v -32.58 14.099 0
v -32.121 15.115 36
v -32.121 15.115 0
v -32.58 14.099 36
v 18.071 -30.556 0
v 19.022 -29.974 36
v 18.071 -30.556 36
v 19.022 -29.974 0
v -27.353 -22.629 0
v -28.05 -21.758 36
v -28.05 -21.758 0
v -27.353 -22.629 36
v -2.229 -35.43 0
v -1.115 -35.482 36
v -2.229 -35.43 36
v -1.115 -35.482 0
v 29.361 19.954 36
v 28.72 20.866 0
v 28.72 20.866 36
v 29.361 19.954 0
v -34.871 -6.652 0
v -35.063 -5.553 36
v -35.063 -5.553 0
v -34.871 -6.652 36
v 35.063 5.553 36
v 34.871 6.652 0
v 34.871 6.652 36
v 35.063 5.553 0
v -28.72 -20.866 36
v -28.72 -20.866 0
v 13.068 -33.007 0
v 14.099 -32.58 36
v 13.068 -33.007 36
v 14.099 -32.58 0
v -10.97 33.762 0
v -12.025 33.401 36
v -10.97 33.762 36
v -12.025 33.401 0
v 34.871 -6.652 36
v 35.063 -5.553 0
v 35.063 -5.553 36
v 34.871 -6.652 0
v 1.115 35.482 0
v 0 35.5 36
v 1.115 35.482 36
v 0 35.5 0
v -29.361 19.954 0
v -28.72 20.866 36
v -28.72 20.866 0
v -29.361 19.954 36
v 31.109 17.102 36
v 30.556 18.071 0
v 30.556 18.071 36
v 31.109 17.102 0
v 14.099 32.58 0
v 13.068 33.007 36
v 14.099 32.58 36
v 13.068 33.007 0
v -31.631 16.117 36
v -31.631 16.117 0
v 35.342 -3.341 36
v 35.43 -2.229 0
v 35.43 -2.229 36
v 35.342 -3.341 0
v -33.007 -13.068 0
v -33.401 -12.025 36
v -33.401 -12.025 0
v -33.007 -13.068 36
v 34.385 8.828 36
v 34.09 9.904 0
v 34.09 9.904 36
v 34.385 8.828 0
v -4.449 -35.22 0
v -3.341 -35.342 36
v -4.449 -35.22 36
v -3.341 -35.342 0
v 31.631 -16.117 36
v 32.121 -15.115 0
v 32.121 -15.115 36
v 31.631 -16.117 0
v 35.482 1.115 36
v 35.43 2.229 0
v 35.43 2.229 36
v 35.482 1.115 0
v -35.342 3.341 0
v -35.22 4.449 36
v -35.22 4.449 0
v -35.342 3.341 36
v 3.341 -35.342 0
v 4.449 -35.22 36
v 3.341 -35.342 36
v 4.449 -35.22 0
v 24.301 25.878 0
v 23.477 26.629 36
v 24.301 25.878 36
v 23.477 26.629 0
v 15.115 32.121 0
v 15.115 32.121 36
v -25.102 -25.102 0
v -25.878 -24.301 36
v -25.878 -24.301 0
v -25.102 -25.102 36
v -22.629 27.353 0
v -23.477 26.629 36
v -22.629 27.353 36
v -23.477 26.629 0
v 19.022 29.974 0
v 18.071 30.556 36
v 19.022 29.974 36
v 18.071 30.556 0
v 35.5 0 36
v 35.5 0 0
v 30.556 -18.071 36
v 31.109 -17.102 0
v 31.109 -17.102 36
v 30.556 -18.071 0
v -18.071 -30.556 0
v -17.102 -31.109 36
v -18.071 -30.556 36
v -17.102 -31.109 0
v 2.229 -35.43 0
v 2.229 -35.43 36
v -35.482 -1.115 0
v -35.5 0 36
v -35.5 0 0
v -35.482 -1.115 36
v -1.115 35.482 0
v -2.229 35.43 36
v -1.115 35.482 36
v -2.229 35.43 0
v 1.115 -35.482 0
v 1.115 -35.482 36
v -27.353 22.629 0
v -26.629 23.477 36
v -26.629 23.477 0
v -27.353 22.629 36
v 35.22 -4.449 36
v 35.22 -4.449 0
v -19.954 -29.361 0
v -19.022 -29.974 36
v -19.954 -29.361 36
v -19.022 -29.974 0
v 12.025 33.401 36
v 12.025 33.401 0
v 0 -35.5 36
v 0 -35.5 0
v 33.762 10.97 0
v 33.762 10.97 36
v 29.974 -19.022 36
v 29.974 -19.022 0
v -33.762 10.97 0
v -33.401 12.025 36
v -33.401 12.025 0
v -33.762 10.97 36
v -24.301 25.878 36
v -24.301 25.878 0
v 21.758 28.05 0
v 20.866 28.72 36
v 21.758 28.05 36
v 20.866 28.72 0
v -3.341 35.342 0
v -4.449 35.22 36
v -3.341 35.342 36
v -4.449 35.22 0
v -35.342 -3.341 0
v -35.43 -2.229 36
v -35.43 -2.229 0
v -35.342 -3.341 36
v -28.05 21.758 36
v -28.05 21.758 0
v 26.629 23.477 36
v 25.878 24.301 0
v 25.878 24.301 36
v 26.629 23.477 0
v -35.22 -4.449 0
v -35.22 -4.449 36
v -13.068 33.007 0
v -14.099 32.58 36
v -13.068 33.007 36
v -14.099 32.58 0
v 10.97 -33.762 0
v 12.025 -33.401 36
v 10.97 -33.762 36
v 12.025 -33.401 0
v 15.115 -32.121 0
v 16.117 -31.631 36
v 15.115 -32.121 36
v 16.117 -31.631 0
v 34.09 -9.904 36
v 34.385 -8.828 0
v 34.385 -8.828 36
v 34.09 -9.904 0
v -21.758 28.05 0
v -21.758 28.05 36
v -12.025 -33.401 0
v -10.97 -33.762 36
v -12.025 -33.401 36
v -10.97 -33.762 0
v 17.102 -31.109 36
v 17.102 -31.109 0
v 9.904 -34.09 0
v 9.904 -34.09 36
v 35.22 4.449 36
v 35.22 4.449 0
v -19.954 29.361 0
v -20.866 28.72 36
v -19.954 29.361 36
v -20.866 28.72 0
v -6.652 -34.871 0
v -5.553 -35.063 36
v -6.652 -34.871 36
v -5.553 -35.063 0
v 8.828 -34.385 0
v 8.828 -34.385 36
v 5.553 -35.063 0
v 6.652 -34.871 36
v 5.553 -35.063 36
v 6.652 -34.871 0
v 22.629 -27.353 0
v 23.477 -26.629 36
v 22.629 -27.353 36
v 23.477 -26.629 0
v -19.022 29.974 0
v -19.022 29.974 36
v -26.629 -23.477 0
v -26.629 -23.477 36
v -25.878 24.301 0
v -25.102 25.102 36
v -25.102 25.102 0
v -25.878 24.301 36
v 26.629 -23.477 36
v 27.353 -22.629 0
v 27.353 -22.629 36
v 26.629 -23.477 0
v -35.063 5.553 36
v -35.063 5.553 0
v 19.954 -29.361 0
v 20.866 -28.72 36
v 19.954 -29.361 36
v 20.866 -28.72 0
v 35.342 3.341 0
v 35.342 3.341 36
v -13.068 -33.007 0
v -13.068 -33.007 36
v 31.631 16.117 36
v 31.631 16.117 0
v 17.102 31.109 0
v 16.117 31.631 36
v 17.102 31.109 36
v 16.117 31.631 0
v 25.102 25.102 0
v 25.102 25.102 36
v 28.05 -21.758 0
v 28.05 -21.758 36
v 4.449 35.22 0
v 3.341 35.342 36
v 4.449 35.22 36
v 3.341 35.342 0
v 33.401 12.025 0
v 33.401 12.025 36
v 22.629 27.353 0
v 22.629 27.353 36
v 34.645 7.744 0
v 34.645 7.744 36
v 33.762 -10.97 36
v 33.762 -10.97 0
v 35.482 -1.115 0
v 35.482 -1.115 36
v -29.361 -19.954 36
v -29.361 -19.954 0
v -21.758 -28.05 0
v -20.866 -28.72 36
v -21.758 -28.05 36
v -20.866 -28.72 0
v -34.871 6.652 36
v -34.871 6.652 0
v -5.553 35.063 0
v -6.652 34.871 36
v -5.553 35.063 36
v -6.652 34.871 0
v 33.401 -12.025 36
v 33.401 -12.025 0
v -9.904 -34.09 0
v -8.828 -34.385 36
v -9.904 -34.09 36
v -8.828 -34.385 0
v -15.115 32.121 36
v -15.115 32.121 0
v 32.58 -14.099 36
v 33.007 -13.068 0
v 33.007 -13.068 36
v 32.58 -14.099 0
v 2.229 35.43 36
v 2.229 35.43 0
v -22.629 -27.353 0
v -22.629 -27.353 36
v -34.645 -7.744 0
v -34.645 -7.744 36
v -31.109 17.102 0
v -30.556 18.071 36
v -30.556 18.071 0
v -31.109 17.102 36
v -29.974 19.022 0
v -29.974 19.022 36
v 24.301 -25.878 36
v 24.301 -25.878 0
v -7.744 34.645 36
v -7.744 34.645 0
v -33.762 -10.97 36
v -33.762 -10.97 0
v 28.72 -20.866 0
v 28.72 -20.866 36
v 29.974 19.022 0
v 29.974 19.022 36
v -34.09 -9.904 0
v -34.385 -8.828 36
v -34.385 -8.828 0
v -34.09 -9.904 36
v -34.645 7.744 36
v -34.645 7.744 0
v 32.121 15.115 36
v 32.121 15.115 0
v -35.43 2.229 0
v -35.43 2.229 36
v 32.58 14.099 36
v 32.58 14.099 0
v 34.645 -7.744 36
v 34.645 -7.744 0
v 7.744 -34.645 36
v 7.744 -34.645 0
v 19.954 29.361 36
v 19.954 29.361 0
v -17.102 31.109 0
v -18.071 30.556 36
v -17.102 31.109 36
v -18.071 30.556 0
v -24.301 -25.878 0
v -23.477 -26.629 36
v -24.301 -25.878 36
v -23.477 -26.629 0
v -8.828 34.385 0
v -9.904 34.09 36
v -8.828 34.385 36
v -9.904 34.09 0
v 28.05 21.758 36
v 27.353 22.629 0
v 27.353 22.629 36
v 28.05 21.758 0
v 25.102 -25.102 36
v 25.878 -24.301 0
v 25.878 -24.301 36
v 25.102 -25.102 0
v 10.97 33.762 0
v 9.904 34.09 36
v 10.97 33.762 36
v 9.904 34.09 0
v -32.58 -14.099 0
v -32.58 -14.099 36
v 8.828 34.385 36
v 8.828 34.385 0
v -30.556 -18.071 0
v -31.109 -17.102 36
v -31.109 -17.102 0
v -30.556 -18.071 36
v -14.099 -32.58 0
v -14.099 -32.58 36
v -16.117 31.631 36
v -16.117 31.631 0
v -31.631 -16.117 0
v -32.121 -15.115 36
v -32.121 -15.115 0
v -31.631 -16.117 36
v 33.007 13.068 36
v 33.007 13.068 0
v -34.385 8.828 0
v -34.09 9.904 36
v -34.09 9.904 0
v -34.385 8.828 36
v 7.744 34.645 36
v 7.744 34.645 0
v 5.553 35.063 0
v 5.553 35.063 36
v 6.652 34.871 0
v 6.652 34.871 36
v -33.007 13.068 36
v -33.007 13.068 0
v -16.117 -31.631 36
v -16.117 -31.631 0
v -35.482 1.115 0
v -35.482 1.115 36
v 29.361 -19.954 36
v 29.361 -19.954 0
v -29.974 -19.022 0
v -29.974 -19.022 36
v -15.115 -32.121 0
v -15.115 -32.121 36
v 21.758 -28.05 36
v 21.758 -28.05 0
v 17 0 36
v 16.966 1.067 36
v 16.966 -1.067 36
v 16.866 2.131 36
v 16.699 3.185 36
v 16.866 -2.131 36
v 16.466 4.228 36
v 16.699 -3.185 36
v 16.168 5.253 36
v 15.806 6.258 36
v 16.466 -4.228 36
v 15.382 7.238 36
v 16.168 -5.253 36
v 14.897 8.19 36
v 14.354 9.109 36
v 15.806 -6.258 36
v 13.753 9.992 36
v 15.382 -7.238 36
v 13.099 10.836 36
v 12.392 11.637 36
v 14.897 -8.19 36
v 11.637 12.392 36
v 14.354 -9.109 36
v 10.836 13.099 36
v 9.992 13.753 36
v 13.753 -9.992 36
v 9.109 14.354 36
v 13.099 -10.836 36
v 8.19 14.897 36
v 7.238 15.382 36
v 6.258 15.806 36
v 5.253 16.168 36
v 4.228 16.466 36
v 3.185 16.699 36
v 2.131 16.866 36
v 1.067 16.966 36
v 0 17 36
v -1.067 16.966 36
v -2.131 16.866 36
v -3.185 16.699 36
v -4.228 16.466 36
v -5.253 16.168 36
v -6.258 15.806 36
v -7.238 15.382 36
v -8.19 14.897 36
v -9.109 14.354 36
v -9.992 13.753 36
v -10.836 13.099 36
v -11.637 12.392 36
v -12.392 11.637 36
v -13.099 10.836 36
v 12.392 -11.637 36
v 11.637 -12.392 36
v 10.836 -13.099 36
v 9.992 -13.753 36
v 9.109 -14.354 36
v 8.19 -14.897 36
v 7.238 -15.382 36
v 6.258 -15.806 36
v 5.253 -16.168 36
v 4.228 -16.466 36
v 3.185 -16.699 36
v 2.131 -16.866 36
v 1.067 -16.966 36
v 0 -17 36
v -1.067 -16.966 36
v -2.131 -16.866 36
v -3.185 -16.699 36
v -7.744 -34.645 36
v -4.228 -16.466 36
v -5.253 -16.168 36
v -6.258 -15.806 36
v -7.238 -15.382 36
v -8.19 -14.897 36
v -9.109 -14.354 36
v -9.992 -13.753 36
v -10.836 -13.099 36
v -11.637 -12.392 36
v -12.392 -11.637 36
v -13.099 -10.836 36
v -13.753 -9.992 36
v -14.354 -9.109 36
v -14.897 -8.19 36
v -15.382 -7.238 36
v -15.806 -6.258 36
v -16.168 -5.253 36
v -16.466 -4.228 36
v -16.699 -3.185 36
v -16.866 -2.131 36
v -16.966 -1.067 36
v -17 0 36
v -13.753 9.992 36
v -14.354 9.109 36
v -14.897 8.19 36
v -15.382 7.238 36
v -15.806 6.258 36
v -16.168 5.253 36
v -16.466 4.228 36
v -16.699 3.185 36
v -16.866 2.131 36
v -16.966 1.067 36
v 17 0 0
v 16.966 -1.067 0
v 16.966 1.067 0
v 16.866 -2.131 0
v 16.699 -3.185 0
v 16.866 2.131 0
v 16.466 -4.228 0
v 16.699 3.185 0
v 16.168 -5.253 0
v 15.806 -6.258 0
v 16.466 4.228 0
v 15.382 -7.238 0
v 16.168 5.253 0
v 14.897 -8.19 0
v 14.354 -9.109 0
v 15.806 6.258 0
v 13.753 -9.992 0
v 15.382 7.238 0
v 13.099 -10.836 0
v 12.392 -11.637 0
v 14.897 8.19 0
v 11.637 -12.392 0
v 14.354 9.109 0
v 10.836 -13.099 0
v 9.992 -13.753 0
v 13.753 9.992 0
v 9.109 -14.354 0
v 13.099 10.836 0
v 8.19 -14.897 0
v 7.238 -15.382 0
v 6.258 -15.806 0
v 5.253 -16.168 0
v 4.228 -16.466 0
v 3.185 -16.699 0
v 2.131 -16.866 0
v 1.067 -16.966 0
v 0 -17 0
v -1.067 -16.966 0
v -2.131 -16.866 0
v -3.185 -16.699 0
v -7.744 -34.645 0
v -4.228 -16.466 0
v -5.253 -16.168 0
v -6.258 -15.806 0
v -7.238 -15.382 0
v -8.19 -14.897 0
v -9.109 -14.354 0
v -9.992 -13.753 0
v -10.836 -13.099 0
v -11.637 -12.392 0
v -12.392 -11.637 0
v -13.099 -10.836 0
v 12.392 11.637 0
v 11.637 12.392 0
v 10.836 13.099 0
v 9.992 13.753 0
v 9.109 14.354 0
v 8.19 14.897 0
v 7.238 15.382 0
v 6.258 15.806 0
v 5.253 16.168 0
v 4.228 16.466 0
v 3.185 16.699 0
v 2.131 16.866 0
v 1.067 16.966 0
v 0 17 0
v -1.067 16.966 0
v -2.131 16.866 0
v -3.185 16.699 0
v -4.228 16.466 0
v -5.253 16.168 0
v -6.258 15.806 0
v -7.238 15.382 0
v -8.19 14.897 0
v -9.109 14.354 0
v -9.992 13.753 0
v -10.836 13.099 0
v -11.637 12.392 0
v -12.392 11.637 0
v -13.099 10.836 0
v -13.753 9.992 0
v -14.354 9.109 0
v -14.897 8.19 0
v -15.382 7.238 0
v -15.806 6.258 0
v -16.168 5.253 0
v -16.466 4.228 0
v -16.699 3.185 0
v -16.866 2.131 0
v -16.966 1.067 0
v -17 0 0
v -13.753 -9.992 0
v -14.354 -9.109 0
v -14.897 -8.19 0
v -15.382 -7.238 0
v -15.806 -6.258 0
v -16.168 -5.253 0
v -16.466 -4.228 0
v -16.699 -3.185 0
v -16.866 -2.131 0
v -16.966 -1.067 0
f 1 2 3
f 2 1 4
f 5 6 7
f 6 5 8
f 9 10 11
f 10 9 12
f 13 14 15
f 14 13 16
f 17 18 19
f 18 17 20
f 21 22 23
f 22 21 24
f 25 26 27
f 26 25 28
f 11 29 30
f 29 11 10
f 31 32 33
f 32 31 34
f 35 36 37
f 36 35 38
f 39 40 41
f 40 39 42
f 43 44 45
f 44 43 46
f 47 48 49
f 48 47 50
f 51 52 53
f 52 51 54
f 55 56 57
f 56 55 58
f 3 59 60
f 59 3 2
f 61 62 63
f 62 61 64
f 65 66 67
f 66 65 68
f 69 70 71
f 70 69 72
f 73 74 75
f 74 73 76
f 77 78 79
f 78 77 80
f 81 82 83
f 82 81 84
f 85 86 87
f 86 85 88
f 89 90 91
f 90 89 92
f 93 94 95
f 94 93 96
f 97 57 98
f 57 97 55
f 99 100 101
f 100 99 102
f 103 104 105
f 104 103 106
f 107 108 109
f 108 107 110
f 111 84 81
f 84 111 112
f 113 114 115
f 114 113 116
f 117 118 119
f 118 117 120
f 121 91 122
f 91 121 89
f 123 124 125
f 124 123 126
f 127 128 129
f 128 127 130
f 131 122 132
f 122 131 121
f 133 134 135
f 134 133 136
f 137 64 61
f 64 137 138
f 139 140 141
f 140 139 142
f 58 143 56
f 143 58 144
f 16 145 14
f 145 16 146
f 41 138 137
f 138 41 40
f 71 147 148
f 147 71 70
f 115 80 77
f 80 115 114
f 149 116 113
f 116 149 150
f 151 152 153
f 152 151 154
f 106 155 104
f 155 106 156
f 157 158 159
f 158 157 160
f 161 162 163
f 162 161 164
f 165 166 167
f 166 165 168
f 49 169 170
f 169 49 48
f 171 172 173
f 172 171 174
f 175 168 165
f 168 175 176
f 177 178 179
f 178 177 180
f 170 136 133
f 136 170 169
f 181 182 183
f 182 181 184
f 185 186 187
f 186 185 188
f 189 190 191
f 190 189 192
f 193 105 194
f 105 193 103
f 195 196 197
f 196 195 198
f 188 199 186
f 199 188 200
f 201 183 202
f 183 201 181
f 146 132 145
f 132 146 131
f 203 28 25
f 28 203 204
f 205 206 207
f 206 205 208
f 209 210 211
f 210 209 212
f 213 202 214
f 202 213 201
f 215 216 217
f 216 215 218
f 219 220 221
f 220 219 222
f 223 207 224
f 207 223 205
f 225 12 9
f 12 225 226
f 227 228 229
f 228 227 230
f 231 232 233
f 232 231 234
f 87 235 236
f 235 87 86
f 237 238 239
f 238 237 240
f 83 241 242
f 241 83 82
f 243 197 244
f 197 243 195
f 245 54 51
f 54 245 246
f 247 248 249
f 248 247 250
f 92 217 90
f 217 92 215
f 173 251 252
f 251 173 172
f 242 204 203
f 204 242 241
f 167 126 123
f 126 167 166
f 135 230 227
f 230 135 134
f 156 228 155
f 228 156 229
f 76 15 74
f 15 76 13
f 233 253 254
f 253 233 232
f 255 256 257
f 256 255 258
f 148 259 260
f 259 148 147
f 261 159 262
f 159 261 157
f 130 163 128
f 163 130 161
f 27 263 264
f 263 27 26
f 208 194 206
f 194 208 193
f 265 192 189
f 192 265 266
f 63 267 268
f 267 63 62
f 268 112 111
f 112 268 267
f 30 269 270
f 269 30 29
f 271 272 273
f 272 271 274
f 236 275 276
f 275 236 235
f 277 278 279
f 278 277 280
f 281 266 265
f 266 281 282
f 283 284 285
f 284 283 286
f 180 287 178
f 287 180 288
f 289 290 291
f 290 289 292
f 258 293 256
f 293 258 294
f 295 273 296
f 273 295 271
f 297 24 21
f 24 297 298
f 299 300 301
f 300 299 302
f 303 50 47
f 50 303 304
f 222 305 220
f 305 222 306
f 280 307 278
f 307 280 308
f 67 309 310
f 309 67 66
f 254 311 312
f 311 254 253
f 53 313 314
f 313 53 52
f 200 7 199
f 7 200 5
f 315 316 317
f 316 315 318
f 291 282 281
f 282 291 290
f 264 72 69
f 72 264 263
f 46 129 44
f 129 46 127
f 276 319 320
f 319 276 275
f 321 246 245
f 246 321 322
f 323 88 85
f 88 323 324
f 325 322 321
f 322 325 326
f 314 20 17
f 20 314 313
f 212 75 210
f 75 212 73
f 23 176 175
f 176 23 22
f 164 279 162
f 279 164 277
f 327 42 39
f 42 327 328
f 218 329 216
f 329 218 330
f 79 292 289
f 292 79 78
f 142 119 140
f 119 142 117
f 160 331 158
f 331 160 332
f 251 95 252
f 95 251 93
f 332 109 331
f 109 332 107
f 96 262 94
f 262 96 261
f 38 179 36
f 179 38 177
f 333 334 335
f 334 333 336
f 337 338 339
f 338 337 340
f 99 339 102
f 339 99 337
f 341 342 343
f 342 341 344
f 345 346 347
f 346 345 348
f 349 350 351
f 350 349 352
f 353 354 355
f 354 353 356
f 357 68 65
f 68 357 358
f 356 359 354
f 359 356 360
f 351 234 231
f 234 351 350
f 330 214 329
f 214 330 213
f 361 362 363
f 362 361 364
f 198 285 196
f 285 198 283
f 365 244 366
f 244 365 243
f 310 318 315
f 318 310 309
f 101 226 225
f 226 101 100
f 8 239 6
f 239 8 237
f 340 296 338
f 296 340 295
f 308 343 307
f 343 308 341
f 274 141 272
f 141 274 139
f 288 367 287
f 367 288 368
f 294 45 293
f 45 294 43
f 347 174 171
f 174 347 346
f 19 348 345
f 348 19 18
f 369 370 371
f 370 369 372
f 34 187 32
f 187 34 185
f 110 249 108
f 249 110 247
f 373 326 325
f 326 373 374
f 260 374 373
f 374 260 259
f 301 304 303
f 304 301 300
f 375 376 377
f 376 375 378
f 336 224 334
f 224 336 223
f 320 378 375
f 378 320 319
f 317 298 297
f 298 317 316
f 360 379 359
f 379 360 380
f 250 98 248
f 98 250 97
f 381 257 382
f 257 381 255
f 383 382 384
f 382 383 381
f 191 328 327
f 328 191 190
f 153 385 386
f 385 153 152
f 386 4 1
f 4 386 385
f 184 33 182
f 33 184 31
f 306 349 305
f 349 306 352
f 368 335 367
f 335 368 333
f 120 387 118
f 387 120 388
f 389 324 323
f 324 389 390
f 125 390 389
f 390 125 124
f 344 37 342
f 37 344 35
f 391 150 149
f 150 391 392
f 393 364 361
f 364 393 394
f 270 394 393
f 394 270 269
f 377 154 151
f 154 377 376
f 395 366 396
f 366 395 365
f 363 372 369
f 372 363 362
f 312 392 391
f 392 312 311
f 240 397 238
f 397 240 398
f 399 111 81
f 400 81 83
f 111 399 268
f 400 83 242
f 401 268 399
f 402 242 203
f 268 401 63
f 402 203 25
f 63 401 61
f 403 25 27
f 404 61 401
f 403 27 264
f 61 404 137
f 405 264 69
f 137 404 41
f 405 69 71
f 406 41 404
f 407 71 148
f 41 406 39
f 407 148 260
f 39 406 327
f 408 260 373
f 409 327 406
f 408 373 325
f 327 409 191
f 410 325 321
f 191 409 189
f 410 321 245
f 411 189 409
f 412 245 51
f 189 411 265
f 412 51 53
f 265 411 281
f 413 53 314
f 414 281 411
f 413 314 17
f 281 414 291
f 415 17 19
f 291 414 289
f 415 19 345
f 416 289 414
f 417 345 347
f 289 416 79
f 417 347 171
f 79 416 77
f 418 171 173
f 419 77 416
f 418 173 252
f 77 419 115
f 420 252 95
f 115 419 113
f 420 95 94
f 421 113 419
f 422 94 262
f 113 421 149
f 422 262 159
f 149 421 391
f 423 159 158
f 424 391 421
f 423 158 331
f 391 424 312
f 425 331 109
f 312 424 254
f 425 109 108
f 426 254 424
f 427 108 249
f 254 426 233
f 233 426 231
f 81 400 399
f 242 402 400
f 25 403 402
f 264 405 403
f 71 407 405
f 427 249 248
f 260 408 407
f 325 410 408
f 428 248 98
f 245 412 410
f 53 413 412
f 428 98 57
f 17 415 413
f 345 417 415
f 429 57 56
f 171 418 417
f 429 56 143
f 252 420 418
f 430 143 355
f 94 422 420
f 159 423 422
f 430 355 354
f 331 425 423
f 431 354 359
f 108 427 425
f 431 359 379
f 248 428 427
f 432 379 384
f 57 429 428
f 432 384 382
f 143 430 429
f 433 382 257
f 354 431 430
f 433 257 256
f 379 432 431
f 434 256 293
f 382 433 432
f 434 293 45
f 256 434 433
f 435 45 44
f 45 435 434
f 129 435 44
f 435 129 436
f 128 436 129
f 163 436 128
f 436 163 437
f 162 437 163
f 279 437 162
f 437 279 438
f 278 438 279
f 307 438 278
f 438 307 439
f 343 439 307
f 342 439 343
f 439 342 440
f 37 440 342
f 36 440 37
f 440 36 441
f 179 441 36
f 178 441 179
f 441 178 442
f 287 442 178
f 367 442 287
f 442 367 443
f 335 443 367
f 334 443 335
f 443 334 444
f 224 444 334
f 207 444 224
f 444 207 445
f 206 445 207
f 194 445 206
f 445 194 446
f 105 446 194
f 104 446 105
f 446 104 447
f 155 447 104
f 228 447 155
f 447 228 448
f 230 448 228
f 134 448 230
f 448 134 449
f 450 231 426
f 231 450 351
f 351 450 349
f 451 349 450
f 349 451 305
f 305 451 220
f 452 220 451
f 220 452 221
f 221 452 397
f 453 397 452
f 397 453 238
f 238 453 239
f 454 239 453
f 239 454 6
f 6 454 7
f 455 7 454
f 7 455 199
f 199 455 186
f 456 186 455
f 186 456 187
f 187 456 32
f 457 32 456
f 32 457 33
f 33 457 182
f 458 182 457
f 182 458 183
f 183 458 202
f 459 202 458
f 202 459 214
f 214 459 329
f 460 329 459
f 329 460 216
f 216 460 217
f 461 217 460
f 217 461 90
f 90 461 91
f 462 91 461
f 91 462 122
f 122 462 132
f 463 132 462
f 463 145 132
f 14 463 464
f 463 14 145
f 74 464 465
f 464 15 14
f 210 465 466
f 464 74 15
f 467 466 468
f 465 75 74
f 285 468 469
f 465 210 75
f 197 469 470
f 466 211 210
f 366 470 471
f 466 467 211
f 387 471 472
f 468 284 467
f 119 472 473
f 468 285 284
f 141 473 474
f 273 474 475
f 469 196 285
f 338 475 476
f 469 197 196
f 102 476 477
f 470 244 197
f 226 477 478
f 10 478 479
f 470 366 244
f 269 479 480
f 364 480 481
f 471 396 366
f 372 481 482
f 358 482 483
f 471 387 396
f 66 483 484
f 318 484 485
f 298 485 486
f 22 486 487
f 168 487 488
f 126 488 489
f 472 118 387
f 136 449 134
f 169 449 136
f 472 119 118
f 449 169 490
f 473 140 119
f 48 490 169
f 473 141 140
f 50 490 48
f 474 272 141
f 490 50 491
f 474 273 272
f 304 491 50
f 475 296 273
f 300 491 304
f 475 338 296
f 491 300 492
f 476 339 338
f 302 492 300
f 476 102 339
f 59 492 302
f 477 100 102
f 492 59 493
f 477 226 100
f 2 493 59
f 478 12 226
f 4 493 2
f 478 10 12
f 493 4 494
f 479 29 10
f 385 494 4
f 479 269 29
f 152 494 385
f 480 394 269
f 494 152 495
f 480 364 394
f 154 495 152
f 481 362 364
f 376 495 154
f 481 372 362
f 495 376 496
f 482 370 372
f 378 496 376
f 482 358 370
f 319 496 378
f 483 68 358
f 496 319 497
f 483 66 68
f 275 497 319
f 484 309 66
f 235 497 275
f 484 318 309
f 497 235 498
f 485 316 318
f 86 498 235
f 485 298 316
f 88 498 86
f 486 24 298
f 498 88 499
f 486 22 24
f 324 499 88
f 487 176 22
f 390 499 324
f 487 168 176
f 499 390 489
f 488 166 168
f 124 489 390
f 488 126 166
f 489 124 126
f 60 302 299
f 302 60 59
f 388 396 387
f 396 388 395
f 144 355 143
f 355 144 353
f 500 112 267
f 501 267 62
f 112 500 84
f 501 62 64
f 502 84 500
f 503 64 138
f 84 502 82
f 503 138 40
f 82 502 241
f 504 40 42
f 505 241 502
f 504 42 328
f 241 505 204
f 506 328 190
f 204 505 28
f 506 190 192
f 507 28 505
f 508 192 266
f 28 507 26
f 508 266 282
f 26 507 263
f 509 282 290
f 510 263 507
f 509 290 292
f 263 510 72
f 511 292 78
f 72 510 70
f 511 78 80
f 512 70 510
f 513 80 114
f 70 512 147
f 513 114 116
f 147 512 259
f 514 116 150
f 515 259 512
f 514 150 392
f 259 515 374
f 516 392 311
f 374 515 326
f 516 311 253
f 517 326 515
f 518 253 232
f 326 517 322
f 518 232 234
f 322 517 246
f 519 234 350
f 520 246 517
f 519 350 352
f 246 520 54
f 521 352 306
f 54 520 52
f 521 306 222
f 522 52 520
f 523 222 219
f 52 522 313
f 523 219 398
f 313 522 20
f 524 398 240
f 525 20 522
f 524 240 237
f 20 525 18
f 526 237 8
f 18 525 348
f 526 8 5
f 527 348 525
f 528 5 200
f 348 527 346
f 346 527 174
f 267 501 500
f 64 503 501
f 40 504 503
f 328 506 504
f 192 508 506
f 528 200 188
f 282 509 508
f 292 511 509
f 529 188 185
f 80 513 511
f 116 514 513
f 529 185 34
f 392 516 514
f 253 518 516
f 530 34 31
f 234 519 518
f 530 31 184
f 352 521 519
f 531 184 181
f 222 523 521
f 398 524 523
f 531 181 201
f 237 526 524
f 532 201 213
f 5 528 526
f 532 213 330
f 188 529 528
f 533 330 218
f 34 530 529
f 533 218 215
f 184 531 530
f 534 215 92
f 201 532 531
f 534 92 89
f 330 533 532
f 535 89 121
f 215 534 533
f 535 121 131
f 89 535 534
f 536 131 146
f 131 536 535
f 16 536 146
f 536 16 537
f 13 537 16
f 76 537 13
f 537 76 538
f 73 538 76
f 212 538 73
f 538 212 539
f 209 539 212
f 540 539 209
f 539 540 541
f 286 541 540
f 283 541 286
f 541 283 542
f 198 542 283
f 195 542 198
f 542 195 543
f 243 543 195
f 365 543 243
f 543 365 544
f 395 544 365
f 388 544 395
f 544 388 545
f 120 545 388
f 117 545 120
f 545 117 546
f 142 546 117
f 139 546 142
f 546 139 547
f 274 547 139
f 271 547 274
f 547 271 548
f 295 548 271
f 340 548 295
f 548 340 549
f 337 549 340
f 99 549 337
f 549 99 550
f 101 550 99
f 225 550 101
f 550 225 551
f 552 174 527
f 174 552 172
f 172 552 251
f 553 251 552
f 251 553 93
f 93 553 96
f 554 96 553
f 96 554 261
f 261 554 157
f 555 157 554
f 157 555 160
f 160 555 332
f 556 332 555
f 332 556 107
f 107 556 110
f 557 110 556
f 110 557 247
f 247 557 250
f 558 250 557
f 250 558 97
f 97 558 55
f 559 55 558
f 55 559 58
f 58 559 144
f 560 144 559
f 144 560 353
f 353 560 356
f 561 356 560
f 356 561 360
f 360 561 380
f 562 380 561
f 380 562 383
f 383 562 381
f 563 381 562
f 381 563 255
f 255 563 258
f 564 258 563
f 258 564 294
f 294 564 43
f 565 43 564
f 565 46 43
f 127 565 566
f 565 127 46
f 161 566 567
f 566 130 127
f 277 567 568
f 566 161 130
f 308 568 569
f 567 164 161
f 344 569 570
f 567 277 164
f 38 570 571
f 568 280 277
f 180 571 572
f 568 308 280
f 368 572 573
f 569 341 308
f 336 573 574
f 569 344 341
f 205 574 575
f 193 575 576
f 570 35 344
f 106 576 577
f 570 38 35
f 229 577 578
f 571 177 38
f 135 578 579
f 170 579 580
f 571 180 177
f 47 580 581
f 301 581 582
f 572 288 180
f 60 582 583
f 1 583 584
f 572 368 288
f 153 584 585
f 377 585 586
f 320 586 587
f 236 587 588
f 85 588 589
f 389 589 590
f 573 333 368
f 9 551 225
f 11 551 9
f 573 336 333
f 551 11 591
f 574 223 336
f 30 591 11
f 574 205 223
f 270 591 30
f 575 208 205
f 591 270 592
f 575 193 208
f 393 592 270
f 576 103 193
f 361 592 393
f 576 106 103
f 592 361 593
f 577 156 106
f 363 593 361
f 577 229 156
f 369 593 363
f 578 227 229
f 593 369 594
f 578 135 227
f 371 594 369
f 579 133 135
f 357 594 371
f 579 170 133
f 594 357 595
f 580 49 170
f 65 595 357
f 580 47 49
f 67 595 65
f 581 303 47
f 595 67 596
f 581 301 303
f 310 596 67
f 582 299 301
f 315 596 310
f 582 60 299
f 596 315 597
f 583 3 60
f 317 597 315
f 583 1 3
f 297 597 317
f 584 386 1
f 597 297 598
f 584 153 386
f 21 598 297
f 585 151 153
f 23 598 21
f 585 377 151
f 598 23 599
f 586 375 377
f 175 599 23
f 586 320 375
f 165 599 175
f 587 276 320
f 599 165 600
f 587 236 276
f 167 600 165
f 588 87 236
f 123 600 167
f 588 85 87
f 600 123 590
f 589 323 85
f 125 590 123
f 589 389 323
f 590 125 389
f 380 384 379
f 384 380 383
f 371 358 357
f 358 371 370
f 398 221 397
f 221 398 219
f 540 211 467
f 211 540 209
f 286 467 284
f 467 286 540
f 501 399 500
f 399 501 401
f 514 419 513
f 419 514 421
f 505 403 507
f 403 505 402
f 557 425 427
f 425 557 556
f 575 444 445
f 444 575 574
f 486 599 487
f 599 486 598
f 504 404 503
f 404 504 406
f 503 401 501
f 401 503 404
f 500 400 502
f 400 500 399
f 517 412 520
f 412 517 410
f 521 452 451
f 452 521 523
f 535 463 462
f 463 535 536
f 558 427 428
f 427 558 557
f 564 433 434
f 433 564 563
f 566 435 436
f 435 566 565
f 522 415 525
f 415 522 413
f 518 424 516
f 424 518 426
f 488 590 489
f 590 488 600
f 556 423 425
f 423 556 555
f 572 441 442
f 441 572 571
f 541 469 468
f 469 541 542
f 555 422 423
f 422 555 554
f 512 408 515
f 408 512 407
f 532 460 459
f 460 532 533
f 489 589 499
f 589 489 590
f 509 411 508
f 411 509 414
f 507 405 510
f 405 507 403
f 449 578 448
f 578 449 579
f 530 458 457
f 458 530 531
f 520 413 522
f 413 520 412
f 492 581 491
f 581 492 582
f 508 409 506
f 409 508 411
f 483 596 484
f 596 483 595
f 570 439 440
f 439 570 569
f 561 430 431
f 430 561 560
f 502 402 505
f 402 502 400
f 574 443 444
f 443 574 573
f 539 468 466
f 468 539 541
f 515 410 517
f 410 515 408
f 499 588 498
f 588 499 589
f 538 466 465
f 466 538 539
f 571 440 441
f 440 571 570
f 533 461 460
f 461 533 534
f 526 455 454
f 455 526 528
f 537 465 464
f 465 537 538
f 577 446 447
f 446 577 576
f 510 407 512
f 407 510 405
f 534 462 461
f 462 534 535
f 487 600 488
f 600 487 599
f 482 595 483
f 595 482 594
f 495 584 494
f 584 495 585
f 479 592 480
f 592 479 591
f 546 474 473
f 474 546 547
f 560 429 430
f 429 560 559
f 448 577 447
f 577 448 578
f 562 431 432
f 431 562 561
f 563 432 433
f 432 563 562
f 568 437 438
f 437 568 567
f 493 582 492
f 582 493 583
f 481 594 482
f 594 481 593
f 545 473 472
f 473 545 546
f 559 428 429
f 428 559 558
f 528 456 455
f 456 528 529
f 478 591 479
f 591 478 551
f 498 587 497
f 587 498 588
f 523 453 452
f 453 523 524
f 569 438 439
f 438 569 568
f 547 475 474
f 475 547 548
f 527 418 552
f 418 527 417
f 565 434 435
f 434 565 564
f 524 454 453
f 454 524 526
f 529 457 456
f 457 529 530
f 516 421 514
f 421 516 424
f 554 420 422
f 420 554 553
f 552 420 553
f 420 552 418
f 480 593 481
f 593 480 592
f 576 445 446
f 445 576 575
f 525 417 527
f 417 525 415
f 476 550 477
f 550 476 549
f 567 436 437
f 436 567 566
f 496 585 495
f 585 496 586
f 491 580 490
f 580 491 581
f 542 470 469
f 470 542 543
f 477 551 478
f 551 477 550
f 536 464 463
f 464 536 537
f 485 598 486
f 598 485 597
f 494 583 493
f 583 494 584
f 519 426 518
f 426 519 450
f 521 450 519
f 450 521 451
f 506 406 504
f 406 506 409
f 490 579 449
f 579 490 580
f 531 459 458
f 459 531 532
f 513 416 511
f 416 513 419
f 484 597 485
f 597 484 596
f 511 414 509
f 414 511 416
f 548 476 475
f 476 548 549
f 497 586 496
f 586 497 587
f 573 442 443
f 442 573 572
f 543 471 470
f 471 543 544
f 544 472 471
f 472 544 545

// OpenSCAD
// 72.9 x 36
difference() {
	color("blue") cylinder ( h = 36, r = 71/2, $fn = 200 );
	color("red") cylinder ( h = 38, r = 34/2, $fn = 100 );
}
